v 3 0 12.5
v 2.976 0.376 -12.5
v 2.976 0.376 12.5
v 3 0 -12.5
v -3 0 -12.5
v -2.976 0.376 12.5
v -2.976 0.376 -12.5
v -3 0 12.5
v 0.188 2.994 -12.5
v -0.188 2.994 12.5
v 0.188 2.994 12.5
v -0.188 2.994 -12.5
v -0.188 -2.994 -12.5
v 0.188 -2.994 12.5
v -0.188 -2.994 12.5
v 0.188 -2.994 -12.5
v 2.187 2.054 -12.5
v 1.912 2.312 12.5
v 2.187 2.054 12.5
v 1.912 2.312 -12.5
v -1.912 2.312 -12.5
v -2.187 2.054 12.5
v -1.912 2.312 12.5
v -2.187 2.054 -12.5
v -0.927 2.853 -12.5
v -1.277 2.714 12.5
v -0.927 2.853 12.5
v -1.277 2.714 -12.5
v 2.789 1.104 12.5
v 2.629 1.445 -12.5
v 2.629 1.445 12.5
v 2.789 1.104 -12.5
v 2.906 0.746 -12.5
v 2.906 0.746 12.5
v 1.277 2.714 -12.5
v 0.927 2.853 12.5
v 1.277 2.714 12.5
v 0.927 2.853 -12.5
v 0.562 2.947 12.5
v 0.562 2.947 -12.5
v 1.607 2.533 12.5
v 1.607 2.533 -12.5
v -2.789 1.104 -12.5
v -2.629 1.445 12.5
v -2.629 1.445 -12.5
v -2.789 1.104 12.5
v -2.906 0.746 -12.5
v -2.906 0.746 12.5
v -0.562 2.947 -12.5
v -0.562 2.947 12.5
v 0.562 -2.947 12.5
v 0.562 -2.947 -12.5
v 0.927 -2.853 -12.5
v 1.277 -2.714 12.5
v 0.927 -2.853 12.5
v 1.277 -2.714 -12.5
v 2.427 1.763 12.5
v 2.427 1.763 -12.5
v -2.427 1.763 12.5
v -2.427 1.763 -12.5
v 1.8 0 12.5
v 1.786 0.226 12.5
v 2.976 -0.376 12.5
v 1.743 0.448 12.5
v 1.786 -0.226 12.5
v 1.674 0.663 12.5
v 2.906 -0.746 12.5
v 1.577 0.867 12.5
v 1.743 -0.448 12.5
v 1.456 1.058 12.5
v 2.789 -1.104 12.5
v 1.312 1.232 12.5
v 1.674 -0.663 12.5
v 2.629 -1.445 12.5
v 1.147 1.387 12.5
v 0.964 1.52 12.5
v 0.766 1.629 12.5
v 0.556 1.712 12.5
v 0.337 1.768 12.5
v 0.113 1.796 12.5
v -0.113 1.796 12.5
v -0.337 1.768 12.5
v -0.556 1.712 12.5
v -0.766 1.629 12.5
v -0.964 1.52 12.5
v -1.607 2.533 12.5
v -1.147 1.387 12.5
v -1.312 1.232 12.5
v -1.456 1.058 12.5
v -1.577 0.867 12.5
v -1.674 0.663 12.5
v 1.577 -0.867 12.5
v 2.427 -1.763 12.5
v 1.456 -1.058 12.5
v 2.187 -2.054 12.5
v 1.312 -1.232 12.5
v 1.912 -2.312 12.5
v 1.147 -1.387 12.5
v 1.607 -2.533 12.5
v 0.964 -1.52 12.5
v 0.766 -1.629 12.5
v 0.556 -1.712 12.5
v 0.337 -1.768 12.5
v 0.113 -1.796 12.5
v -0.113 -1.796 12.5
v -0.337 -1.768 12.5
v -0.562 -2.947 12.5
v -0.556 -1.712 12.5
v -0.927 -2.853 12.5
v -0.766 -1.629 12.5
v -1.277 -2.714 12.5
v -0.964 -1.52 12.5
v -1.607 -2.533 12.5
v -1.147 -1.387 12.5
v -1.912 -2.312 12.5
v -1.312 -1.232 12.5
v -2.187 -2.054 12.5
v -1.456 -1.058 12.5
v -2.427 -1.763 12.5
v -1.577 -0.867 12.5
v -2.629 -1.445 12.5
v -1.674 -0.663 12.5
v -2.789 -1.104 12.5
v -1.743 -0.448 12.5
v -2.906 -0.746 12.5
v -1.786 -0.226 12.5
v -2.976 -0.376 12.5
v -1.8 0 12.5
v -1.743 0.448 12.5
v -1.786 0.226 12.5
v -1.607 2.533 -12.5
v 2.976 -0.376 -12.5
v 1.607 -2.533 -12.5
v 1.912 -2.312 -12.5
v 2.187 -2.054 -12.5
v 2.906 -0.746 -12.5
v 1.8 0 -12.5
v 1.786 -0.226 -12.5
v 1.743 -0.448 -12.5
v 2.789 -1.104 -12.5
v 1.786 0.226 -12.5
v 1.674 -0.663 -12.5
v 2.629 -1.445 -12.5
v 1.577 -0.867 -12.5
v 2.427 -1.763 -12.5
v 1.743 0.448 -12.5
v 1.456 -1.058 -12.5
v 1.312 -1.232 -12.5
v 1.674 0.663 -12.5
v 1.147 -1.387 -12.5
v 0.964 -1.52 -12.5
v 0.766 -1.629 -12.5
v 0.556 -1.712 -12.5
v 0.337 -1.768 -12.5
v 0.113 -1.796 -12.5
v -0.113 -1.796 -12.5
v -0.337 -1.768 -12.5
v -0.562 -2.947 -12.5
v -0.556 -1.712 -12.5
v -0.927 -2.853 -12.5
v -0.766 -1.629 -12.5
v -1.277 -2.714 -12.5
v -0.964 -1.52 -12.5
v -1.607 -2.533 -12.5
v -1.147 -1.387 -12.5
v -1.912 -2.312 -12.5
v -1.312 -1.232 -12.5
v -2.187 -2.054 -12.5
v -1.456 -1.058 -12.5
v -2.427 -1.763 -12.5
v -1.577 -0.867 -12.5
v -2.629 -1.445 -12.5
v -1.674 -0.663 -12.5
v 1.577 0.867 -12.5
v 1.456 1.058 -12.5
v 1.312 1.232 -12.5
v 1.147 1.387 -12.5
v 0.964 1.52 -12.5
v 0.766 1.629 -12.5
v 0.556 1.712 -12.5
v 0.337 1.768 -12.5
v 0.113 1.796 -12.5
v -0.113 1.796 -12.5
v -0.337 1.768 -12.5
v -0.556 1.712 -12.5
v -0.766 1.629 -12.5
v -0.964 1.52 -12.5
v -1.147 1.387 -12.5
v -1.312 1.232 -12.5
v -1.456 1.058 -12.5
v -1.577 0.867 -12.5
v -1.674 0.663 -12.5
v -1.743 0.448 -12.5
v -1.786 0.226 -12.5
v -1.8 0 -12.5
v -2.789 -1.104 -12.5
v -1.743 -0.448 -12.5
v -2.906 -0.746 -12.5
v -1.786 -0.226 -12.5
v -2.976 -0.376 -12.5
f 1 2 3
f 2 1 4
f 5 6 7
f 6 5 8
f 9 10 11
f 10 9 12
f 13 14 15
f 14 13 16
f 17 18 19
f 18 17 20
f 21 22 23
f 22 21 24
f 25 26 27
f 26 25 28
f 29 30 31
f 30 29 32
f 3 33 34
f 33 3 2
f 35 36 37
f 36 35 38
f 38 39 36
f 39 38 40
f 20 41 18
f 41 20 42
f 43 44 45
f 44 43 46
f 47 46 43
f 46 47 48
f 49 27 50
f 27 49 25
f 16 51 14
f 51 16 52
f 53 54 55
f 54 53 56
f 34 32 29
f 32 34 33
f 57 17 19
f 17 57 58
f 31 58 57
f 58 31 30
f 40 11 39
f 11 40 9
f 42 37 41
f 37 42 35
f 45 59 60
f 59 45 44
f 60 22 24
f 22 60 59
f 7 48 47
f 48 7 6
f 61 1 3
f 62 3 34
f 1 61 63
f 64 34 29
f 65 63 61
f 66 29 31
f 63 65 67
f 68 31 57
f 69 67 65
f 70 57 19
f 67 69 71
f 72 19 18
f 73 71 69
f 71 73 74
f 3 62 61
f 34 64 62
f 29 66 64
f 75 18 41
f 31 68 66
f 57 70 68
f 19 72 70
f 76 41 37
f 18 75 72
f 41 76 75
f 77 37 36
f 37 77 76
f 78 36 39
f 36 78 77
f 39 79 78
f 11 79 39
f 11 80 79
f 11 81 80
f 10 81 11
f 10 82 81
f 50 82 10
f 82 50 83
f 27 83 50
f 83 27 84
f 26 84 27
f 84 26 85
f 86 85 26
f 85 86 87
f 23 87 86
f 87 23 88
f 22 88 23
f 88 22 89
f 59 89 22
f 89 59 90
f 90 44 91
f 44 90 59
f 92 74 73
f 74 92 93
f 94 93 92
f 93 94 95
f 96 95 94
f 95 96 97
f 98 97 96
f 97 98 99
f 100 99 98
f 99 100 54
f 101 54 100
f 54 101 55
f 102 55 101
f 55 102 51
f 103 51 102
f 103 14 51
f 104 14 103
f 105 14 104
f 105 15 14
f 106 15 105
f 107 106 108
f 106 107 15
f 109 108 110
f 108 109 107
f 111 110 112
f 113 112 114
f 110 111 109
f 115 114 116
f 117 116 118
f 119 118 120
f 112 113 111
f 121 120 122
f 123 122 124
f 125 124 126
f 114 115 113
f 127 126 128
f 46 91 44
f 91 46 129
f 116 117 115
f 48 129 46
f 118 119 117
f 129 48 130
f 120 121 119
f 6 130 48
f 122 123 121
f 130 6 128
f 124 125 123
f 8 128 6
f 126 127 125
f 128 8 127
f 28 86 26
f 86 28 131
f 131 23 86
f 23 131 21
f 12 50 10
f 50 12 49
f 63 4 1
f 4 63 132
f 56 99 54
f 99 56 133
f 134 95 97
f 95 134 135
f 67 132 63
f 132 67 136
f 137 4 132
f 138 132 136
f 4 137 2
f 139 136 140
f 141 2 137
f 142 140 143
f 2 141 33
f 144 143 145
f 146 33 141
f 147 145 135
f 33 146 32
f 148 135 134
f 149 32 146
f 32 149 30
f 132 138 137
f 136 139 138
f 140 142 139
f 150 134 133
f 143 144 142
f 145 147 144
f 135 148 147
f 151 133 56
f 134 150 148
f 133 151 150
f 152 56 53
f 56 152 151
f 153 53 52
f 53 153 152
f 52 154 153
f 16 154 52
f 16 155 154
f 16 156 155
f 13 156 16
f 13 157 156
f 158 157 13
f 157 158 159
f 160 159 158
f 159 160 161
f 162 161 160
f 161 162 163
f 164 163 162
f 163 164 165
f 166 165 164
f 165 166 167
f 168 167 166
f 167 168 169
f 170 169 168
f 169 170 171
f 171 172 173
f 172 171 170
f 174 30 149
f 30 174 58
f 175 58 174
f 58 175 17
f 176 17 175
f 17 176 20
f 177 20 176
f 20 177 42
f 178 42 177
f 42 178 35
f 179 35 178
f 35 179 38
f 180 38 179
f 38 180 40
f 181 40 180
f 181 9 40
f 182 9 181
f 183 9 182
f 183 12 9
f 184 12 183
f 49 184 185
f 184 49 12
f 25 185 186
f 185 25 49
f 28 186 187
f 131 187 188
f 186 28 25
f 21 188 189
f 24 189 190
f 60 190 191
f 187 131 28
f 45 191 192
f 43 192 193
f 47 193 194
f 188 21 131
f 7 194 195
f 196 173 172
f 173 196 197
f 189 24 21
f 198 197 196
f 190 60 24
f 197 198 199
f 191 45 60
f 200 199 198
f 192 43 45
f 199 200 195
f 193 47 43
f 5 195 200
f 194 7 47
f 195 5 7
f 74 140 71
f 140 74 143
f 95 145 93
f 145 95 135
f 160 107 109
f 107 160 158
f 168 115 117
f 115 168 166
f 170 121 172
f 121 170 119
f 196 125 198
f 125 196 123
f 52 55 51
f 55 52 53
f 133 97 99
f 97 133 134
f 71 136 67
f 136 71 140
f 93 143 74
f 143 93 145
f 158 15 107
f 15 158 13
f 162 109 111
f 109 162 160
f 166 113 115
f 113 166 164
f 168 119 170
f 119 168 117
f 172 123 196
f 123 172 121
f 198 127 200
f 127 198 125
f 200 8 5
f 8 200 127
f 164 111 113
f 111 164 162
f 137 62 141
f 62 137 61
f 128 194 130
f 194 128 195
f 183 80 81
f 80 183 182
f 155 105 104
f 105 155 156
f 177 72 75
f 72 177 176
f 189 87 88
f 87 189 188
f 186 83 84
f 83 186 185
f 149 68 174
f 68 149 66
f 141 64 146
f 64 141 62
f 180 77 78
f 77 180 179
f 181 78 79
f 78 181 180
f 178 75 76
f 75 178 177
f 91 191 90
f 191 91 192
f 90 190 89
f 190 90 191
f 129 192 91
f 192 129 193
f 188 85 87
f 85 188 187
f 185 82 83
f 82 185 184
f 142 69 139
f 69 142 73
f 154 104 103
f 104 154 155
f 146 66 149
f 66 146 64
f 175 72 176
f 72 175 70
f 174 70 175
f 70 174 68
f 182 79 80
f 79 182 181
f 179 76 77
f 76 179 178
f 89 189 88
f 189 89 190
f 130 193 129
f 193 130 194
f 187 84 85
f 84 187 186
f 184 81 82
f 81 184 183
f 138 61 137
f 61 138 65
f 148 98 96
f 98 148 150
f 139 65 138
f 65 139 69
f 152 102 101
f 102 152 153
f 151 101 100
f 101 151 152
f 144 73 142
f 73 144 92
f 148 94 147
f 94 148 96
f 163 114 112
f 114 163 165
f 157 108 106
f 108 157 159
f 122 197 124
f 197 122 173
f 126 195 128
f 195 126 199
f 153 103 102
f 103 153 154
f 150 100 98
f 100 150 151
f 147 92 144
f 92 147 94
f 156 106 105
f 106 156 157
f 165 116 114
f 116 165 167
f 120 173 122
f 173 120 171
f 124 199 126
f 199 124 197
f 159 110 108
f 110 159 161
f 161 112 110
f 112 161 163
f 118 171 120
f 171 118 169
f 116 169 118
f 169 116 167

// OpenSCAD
$fn = 50;


difference() {
	union() {
		translate(v = [0, 0, -12.5000000000]) {
			cylinder(h = 25, r = 3.0000000000);
		}
	}
	union() {
		translate(v = [0, 0, -100.0000000000]) {
			cylinder(h = 200, r = 1.8000000000);
		}
	}
}
